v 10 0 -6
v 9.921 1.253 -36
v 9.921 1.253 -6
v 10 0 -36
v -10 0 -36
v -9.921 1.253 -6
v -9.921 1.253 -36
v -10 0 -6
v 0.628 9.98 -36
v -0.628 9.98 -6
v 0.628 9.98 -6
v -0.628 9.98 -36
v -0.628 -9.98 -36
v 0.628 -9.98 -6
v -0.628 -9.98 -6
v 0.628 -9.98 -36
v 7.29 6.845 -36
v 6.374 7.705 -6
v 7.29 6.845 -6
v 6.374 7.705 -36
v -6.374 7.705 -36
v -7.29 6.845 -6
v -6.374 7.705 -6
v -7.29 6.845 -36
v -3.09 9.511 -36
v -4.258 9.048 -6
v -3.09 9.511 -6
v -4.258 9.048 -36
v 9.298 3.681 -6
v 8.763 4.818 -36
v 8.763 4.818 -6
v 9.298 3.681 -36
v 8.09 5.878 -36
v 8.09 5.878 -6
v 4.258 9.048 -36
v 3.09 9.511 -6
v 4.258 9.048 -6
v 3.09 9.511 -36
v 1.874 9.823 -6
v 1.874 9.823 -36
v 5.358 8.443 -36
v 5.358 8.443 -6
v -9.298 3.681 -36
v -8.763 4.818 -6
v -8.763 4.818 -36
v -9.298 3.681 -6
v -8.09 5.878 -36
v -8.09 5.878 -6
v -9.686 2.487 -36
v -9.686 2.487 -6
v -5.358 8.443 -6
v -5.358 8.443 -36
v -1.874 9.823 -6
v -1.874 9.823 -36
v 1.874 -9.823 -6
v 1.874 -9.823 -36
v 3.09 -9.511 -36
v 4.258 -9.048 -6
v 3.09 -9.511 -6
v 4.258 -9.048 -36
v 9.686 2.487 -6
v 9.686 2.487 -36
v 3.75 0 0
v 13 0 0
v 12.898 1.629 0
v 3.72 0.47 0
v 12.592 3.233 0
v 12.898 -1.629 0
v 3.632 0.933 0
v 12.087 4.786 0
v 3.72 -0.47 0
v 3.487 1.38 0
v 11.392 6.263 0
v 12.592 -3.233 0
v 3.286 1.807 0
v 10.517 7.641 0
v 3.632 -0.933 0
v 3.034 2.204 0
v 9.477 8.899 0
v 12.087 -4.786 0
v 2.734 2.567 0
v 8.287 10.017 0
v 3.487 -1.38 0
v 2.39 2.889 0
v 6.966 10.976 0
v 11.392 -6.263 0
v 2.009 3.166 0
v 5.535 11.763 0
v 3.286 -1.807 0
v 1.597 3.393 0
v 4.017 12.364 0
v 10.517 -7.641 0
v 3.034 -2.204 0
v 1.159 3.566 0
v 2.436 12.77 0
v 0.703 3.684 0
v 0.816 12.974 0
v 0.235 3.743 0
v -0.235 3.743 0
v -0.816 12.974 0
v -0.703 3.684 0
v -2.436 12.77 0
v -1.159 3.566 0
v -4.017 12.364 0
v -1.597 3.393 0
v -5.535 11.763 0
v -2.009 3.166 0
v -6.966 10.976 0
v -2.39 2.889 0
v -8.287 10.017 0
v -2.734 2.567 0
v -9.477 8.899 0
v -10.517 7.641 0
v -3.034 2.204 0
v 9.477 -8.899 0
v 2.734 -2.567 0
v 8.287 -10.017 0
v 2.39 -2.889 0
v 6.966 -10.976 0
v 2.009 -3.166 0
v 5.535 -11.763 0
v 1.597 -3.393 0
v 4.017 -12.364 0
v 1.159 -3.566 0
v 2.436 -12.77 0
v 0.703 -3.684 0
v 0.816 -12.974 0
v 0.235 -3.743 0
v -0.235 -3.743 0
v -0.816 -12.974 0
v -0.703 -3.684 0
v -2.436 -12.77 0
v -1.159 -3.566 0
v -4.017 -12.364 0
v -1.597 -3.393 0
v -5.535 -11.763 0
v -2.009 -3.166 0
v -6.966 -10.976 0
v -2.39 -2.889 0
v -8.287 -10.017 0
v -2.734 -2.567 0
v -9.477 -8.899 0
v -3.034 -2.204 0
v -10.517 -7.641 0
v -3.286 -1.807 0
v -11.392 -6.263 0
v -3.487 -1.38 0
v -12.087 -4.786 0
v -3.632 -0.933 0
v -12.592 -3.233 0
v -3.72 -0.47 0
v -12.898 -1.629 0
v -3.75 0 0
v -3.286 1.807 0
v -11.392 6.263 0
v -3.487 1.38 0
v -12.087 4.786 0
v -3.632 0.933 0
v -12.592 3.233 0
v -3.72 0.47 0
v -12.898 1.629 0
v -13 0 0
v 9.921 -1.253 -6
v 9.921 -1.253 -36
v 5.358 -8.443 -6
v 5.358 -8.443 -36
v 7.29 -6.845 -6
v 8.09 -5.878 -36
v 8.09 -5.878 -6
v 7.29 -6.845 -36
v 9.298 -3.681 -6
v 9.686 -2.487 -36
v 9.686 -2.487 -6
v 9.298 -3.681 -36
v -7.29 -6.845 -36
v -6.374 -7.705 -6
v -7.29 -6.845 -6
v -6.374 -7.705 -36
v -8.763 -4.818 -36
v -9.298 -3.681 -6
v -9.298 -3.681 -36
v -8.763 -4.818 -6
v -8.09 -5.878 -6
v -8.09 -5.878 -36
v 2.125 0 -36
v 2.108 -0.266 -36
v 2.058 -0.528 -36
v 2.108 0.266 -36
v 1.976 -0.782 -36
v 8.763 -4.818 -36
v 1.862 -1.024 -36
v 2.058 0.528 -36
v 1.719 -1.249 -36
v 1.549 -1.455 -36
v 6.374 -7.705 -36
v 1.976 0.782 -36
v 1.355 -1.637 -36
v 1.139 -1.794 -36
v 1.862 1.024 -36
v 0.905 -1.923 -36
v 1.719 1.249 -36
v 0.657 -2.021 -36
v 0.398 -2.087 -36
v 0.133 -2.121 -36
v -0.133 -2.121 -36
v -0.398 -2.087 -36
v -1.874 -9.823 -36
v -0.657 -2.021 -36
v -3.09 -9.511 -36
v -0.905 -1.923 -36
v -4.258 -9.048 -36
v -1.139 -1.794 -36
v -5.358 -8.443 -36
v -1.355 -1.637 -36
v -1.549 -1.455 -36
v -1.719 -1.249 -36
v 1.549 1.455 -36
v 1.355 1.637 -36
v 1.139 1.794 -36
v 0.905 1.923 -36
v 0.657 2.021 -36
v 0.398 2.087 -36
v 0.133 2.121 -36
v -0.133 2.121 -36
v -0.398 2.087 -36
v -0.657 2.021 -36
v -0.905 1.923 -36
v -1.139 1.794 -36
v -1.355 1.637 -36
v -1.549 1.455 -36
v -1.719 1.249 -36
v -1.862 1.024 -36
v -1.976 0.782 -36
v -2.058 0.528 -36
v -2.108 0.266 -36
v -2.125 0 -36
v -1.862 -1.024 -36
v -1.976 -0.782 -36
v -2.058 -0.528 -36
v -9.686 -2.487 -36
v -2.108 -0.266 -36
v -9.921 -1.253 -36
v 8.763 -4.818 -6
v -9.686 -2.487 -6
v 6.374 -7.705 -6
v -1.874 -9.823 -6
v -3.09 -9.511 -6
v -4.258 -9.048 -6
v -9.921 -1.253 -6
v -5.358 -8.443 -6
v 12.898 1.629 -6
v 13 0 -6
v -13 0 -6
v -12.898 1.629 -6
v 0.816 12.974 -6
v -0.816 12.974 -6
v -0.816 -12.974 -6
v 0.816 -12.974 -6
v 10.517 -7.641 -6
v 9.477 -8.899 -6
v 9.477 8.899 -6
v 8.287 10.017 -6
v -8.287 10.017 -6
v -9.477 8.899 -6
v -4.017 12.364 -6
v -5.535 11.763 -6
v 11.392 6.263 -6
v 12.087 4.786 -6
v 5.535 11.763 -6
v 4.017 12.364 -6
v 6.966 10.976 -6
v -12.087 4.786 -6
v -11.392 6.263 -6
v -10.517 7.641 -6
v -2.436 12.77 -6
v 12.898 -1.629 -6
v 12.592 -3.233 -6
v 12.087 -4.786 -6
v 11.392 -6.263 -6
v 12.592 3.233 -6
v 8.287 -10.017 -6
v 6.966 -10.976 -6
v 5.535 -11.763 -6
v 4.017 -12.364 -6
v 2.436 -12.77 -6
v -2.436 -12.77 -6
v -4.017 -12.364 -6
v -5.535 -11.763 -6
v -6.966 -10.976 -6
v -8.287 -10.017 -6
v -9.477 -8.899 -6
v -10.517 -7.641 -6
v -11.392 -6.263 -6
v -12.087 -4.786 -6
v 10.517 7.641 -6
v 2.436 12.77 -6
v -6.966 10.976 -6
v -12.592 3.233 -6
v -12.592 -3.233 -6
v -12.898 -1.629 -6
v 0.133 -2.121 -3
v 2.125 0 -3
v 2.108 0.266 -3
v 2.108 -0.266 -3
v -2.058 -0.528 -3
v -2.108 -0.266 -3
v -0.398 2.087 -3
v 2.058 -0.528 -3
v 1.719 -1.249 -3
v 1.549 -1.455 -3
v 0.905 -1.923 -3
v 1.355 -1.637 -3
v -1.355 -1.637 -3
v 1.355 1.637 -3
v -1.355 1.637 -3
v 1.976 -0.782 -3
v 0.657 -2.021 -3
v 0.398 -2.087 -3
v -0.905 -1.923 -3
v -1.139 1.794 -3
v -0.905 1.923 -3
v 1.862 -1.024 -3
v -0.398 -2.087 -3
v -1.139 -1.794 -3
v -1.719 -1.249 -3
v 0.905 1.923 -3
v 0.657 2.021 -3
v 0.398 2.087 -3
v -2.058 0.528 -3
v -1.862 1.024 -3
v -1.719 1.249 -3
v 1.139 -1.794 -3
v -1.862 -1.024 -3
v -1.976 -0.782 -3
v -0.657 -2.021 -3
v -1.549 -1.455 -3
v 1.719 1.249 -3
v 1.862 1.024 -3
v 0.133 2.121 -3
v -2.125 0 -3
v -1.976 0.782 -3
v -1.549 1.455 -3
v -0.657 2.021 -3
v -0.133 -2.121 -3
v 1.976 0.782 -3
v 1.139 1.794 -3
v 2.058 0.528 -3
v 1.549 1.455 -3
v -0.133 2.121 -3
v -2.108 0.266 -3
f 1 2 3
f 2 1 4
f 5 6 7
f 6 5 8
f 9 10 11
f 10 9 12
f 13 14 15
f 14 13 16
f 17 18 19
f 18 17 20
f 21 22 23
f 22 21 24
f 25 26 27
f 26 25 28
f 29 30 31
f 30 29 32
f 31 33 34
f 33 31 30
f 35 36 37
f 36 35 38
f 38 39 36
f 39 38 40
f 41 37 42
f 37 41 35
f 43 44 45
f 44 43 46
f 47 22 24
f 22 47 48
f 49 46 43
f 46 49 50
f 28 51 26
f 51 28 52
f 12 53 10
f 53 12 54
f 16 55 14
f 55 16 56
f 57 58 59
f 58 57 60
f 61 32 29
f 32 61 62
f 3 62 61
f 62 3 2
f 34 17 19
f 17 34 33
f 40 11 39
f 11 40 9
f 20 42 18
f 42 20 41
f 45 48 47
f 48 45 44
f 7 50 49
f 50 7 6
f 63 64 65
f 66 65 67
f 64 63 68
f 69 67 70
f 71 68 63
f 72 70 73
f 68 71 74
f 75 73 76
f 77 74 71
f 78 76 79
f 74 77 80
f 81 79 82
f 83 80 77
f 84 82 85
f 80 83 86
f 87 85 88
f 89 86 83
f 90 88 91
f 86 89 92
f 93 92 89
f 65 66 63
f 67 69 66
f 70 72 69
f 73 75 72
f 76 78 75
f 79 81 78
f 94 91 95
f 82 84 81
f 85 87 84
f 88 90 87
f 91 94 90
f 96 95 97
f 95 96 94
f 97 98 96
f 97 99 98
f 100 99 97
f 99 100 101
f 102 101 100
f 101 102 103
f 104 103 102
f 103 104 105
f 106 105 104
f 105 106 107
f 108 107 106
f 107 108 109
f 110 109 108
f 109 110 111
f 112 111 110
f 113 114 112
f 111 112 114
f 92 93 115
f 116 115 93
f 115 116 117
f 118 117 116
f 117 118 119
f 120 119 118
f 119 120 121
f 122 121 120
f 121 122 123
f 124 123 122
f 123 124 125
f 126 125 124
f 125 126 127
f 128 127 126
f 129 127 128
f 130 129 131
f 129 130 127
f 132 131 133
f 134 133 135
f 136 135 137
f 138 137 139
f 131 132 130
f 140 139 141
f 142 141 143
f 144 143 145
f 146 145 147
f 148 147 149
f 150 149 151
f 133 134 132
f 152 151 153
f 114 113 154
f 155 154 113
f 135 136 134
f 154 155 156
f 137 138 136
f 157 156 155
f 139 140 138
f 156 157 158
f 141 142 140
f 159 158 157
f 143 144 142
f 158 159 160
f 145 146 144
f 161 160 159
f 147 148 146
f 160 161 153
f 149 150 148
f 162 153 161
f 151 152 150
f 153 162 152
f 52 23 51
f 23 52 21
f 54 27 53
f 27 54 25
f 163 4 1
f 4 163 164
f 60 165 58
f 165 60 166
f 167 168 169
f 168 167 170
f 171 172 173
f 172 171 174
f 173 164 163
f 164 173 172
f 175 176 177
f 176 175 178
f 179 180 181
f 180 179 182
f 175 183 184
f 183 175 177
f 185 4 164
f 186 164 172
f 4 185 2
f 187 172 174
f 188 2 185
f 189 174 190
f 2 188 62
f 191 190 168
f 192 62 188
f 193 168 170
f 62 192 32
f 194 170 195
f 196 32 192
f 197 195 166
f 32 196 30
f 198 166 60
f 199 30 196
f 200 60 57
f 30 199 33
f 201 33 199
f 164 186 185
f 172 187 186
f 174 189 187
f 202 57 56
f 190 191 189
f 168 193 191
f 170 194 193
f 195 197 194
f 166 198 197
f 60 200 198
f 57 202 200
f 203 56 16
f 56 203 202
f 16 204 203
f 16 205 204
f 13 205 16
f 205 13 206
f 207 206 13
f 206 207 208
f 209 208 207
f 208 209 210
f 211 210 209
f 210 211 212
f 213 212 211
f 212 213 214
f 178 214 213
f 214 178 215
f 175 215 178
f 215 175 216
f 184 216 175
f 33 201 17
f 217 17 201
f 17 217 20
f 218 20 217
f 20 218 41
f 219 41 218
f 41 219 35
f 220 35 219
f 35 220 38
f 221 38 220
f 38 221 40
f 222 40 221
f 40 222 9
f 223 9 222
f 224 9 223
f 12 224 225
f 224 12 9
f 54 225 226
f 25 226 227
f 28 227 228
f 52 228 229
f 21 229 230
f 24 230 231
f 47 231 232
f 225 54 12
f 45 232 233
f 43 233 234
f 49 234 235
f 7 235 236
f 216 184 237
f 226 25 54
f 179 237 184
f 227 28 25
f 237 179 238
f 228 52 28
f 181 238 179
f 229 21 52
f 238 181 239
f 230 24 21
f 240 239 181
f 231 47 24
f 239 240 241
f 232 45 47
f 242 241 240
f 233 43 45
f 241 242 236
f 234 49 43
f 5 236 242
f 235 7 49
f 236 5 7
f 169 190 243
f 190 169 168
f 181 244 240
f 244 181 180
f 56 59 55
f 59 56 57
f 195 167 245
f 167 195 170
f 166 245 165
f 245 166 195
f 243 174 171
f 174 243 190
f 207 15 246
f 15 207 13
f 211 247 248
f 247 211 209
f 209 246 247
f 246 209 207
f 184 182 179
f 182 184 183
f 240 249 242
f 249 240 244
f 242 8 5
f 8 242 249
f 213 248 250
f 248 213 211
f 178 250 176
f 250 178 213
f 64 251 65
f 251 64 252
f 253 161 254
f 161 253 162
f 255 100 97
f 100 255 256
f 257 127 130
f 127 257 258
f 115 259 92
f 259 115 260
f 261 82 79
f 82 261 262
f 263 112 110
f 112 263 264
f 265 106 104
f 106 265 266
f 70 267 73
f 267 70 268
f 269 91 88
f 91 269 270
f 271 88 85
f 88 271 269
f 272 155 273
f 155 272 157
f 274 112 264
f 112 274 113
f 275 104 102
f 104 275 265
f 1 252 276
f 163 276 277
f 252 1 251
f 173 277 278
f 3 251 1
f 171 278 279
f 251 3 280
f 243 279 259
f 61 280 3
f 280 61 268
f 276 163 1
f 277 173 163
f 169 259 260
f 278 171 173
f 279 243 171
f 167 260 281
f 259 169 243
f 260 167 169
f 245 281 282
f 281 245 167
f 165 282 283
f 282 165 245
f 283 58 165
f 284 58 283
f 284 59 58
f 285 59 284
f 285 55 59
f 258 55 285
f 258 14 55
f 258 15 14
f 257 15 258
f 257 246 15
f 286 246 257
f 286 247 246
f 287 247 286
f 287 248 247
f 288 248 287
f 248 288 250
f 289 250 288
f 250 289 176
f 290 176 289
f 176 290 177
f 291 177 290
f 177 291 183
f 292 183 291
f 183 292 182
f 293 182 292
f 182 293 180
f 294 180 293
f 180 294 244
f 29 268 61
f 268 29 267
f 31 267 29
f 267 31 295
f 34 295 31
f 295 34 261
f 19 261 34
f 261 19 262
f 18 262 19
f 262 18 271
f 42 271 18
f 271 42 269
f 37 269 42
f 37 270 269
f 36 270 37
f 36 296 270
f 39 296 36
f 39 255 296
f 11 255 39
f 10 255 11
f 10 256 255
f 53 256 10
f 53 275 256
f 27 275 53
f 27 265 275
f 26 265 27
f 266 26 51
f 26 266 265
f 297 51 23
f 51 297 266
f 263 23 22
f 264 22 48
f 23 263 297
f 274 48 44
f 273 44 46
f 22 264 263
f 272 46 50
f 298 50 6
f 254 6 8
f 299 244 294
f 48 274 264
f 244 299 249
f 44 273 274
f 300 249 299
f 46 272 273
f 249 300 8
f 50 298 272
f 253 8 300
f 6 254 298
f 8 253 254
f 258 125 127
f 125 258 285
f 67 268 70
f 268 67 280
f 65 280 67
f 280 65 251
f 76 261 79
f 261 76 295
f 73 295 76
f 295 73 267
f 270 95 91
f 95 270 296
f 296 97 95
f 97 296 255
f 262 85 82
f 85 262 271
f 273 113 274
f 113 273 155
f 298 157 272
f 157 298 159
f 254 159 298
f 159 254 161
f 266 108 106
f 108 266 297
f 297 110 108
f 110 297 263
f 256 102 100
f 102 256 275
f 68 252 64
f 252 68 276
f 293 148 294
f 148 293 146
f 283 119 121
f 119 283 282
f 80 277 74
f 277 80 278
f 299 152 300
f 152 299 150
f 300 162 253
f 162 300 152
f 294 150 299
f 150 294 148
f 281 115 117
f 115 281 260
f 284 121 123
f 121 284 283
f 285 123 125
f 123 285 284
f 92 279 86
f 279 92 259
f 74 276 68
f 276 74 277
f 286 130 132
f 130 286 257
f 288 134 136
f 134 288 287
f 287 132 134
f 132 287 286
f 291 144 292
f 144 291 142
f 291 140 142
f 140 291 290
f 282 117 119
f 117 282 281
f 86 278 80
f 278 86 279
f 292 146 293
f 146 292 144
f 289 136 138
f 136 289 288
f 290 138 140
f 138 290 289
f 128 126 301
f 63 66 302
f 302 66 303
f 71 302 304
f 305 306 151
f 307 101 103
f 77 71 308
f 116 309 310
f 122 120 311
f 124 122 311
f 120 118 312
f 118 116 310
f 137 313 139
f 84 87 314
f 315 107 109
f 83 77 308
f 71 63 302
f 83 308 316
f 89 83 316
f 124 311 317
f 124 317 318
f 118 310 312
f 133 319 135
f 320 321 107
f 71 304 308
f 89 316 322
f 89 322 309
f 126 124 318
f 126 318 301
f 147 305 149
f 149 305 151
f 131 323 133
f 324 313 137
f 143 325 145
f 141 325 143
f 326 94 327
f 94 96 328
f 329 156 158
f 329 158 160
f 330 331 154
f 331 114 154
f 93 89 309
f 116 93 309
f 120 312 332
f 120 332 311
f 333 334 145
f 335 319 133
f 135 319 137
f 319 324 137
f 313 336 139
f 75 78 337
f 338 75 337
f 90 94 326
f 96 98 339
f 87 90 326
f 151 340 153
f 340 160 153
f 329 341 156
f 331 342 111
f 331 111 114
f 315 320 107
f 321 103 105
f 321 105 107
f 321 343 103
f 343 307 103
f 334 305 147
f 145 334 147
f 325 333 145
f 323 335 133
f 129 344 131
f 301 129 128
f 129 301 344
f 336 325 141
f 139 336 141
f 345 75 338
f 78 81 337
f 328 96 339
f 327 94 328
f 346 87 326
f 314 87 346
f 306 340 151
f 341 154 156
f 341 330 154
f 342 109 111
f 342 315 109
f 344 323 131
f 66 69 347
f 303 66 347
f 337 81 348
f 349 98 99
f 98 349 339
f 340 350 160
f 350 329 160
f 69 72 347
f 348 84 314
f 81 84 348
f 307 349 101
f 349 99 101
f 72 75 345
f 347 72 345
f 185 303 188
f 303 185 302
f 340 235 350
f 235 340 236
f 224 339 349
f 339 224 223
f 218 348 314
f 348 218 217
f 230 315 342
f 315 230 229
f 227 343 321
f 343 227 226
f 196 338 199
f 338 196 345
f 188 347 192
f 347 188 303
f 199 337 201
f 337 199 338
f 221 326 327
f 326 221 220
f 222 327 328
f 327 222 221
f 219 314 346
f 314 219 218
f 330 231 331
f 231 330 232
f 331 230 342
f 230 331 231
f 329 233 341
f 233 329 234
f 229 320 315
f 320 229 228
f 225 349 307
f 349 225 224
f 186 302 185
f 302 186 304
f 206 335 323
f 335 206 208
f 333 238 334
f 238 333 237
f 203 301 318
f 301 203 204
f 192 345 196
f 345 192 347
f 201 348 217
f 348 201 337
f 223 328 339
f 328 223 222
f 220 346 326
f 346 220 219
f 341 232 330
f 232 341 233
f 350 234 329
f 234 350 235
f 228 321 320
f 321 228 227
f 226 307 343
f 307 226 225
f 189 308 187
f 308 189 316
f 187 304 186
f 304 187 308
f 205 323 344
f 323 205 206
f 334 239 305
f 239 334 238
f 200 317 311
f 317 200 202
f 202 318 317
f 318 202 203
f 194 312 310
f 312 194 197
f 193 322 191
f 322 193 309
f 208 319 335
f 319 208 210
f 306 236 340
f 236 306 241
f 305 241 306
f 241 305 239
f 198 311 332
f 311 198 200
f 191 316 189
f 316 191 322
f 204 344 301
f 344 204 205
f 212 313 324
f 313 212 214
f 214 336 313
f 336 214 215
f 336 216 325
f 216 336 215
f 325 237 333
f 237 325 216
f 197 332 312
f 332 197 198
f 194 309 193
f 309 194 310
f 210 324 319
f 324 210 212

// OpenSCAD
$fn = 50;


difference() {
	union() {
		translate(v = [0, 0, -36.0000000000]) {
			cylinder(h = 36, r = 10.0000000000);
		}
		translate(v = [0, 0, -6.0000000000]) {
			cylinder(h = 6, r = 13.0000000000);
		}
	}
	union() {
		translate(v = [0, 0, 0]) {
			rotate(a = [0, 0, 0]) {
				difference() {
					union() {
						#translate(v = [0, 0, -36.0000000000]) {
							cylinder(h = 36, r = 2.0000000000);
						}
						#translate(v = [0, 0, -3]) {
							cylinder(h = 3, r1 = 2.1250000000, r2 = 3.7500000000);
						}
						#translate(v = [0, 0, -36.0000000000]) {
							cylinder(h = 36, r = 2.1250000000);
						}
						#translate(v = [0, 0, -36.0000000000]) {
							cylinder(h = 36, r = 2.0000000000);
						}
					}
					union();
				}
			}
		}
	}
}
